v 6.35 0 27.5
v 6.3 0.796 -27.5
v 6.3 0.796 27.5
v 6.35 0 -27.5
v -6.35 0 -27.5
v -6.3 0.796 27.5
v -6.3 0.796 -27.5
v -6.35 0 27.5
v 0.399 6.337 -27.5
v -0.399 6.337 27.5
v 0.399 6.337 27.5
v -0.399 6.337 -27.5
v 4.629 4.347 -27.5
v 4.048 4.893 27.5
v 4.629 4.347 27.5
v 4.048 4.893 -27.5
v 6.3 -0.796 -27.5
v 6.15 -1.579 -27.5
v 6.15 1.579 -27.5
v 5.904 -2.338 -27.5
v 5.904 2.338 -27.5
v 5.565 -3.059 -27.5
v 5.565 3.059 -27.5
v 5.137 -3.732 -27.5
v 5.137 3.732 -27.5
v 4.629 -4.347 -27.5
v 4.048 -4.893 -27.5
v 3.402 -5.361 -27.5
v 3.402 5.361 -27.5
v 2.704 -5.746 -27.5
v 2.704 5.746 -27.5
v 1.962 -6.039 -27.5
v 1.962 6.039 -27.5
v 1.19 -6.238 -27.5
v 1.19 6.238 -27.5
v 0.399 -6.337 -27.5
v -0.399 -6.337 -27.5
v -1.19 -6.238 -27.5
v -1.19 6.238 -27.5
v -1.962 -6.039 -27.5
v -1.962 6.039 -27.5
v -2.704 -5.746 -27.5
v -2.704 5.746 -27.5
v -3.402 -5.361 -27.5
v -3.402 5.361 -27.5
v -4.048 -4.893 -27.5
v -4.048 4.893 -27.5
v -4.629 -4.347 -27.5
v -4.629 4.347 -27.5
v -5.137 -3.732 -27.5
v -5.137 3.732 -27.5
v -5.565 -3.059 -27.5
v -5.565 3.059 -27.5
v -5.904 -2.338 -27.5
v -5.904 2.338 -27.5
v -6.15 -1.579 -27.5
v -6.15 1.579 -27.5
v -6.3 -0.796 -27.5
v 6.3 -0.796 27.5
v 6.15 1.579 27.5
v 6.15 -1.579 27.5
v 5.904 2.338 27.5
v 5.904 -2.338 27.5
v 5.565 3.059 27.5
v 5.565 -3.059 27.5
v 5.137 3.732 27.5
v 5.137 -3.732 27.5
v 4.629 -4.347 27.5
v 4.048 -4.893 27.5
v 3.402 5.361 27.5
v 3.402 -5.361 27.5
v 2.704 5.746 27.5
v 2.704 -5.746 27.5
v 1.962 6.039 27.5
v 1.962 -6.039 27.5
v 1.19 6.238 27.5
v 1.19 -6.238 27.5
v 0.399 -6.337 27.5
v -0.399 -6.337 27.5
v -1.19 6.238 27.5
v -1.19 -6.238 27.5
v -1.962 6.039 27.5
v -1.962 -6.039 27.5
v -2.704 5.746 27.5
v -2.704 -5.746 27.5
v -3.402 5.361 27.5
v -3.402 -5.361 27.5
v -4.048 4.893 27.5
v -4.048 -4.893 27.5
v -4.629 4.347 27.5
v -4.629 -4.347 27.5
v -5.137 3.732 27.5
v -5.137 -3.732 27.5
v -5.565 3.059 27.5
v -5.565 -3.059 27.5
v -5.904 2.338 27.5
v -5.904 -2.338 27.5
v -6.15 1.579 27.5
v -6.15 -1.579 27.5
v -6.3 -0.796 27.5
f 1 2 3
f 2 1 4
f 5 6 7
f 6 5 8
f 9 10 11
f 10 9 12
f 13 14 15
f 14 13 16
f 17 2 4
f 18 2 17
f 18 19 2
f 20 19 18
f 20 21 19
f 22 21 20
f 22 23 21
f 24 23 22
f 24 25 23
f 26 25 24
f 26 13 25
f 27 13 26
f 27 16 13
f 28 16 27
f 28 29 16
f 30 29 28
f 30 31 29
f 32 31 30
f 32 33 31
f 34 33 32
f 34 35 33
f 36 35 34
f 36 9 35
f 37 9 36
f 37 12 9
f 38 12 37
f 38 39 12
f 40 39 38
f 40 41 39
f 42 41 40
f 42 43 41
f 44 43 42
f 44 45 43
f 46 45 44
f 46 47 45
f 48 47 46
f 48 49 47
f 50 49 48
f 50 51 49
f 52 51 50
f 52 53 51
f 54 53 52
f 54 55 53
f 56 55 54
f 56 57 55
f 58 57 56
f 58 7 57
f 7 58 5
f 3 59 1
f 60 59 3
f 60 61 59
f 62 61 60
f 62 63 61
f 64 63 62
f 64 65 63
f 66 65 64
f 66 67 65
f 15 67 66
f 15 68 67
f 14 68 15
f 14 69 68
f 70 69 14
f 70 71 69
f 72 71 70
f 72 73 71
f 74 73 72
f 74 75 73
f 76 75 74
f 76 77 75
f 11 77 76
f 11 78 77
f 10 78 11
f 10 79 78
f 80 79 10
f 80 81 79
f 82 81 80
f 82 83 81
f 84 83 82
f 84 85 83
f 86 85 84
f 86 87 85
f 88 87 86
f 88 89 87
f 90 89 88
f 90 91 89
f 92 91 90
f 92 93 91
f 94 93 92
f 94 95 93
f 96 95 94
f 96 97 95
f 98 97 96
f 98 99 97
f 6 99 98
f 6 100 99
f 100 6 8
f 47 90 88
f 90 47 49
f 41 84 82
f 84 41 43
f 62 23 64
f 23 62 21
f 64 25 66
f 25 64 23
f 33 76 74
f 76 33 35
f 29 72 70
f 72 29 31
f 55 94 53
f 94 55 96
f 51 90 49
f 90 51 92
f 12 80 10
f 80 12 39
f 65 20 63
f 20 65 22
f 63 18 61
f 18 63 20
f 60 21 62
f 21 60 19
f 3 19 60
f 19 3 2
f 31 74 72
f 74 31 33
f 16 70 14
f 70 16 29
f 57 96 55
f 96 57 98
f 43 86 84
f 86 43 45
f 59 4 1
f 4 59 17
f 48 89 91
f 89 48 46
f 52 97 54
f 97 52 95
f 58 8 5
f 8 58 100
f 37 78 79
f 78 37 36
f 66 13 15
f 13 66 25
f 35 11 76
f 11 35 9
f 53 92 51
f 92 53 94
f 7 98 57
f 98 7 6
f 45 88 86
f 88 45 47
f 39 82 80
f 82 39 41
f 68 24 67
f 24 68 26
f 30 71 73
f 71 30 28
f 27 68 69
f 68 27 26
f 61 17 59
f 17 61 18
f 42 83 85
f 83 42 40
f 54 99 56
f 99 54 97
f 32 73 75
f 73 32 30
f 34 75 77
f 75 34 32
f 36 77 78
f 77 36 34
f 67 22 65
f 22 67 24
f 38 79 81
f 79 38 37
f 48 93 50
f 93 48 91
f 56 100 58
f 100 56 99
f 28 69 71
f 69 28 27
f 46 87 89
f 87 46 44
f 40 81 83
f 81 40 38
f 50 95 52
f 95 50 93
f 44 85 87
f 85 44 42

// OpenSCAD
$fn = 50;


difference() {
	union() {
		translate(v = [0, 0, -27.5000000000]) {
			cylinder(h = 55, r = 6.3500000000);
		}
	}
	union() {
		translate(v = [0, 0, -100.0000000000]) {
			cylinder(h = 200, r = 0);
		}
	}
}
